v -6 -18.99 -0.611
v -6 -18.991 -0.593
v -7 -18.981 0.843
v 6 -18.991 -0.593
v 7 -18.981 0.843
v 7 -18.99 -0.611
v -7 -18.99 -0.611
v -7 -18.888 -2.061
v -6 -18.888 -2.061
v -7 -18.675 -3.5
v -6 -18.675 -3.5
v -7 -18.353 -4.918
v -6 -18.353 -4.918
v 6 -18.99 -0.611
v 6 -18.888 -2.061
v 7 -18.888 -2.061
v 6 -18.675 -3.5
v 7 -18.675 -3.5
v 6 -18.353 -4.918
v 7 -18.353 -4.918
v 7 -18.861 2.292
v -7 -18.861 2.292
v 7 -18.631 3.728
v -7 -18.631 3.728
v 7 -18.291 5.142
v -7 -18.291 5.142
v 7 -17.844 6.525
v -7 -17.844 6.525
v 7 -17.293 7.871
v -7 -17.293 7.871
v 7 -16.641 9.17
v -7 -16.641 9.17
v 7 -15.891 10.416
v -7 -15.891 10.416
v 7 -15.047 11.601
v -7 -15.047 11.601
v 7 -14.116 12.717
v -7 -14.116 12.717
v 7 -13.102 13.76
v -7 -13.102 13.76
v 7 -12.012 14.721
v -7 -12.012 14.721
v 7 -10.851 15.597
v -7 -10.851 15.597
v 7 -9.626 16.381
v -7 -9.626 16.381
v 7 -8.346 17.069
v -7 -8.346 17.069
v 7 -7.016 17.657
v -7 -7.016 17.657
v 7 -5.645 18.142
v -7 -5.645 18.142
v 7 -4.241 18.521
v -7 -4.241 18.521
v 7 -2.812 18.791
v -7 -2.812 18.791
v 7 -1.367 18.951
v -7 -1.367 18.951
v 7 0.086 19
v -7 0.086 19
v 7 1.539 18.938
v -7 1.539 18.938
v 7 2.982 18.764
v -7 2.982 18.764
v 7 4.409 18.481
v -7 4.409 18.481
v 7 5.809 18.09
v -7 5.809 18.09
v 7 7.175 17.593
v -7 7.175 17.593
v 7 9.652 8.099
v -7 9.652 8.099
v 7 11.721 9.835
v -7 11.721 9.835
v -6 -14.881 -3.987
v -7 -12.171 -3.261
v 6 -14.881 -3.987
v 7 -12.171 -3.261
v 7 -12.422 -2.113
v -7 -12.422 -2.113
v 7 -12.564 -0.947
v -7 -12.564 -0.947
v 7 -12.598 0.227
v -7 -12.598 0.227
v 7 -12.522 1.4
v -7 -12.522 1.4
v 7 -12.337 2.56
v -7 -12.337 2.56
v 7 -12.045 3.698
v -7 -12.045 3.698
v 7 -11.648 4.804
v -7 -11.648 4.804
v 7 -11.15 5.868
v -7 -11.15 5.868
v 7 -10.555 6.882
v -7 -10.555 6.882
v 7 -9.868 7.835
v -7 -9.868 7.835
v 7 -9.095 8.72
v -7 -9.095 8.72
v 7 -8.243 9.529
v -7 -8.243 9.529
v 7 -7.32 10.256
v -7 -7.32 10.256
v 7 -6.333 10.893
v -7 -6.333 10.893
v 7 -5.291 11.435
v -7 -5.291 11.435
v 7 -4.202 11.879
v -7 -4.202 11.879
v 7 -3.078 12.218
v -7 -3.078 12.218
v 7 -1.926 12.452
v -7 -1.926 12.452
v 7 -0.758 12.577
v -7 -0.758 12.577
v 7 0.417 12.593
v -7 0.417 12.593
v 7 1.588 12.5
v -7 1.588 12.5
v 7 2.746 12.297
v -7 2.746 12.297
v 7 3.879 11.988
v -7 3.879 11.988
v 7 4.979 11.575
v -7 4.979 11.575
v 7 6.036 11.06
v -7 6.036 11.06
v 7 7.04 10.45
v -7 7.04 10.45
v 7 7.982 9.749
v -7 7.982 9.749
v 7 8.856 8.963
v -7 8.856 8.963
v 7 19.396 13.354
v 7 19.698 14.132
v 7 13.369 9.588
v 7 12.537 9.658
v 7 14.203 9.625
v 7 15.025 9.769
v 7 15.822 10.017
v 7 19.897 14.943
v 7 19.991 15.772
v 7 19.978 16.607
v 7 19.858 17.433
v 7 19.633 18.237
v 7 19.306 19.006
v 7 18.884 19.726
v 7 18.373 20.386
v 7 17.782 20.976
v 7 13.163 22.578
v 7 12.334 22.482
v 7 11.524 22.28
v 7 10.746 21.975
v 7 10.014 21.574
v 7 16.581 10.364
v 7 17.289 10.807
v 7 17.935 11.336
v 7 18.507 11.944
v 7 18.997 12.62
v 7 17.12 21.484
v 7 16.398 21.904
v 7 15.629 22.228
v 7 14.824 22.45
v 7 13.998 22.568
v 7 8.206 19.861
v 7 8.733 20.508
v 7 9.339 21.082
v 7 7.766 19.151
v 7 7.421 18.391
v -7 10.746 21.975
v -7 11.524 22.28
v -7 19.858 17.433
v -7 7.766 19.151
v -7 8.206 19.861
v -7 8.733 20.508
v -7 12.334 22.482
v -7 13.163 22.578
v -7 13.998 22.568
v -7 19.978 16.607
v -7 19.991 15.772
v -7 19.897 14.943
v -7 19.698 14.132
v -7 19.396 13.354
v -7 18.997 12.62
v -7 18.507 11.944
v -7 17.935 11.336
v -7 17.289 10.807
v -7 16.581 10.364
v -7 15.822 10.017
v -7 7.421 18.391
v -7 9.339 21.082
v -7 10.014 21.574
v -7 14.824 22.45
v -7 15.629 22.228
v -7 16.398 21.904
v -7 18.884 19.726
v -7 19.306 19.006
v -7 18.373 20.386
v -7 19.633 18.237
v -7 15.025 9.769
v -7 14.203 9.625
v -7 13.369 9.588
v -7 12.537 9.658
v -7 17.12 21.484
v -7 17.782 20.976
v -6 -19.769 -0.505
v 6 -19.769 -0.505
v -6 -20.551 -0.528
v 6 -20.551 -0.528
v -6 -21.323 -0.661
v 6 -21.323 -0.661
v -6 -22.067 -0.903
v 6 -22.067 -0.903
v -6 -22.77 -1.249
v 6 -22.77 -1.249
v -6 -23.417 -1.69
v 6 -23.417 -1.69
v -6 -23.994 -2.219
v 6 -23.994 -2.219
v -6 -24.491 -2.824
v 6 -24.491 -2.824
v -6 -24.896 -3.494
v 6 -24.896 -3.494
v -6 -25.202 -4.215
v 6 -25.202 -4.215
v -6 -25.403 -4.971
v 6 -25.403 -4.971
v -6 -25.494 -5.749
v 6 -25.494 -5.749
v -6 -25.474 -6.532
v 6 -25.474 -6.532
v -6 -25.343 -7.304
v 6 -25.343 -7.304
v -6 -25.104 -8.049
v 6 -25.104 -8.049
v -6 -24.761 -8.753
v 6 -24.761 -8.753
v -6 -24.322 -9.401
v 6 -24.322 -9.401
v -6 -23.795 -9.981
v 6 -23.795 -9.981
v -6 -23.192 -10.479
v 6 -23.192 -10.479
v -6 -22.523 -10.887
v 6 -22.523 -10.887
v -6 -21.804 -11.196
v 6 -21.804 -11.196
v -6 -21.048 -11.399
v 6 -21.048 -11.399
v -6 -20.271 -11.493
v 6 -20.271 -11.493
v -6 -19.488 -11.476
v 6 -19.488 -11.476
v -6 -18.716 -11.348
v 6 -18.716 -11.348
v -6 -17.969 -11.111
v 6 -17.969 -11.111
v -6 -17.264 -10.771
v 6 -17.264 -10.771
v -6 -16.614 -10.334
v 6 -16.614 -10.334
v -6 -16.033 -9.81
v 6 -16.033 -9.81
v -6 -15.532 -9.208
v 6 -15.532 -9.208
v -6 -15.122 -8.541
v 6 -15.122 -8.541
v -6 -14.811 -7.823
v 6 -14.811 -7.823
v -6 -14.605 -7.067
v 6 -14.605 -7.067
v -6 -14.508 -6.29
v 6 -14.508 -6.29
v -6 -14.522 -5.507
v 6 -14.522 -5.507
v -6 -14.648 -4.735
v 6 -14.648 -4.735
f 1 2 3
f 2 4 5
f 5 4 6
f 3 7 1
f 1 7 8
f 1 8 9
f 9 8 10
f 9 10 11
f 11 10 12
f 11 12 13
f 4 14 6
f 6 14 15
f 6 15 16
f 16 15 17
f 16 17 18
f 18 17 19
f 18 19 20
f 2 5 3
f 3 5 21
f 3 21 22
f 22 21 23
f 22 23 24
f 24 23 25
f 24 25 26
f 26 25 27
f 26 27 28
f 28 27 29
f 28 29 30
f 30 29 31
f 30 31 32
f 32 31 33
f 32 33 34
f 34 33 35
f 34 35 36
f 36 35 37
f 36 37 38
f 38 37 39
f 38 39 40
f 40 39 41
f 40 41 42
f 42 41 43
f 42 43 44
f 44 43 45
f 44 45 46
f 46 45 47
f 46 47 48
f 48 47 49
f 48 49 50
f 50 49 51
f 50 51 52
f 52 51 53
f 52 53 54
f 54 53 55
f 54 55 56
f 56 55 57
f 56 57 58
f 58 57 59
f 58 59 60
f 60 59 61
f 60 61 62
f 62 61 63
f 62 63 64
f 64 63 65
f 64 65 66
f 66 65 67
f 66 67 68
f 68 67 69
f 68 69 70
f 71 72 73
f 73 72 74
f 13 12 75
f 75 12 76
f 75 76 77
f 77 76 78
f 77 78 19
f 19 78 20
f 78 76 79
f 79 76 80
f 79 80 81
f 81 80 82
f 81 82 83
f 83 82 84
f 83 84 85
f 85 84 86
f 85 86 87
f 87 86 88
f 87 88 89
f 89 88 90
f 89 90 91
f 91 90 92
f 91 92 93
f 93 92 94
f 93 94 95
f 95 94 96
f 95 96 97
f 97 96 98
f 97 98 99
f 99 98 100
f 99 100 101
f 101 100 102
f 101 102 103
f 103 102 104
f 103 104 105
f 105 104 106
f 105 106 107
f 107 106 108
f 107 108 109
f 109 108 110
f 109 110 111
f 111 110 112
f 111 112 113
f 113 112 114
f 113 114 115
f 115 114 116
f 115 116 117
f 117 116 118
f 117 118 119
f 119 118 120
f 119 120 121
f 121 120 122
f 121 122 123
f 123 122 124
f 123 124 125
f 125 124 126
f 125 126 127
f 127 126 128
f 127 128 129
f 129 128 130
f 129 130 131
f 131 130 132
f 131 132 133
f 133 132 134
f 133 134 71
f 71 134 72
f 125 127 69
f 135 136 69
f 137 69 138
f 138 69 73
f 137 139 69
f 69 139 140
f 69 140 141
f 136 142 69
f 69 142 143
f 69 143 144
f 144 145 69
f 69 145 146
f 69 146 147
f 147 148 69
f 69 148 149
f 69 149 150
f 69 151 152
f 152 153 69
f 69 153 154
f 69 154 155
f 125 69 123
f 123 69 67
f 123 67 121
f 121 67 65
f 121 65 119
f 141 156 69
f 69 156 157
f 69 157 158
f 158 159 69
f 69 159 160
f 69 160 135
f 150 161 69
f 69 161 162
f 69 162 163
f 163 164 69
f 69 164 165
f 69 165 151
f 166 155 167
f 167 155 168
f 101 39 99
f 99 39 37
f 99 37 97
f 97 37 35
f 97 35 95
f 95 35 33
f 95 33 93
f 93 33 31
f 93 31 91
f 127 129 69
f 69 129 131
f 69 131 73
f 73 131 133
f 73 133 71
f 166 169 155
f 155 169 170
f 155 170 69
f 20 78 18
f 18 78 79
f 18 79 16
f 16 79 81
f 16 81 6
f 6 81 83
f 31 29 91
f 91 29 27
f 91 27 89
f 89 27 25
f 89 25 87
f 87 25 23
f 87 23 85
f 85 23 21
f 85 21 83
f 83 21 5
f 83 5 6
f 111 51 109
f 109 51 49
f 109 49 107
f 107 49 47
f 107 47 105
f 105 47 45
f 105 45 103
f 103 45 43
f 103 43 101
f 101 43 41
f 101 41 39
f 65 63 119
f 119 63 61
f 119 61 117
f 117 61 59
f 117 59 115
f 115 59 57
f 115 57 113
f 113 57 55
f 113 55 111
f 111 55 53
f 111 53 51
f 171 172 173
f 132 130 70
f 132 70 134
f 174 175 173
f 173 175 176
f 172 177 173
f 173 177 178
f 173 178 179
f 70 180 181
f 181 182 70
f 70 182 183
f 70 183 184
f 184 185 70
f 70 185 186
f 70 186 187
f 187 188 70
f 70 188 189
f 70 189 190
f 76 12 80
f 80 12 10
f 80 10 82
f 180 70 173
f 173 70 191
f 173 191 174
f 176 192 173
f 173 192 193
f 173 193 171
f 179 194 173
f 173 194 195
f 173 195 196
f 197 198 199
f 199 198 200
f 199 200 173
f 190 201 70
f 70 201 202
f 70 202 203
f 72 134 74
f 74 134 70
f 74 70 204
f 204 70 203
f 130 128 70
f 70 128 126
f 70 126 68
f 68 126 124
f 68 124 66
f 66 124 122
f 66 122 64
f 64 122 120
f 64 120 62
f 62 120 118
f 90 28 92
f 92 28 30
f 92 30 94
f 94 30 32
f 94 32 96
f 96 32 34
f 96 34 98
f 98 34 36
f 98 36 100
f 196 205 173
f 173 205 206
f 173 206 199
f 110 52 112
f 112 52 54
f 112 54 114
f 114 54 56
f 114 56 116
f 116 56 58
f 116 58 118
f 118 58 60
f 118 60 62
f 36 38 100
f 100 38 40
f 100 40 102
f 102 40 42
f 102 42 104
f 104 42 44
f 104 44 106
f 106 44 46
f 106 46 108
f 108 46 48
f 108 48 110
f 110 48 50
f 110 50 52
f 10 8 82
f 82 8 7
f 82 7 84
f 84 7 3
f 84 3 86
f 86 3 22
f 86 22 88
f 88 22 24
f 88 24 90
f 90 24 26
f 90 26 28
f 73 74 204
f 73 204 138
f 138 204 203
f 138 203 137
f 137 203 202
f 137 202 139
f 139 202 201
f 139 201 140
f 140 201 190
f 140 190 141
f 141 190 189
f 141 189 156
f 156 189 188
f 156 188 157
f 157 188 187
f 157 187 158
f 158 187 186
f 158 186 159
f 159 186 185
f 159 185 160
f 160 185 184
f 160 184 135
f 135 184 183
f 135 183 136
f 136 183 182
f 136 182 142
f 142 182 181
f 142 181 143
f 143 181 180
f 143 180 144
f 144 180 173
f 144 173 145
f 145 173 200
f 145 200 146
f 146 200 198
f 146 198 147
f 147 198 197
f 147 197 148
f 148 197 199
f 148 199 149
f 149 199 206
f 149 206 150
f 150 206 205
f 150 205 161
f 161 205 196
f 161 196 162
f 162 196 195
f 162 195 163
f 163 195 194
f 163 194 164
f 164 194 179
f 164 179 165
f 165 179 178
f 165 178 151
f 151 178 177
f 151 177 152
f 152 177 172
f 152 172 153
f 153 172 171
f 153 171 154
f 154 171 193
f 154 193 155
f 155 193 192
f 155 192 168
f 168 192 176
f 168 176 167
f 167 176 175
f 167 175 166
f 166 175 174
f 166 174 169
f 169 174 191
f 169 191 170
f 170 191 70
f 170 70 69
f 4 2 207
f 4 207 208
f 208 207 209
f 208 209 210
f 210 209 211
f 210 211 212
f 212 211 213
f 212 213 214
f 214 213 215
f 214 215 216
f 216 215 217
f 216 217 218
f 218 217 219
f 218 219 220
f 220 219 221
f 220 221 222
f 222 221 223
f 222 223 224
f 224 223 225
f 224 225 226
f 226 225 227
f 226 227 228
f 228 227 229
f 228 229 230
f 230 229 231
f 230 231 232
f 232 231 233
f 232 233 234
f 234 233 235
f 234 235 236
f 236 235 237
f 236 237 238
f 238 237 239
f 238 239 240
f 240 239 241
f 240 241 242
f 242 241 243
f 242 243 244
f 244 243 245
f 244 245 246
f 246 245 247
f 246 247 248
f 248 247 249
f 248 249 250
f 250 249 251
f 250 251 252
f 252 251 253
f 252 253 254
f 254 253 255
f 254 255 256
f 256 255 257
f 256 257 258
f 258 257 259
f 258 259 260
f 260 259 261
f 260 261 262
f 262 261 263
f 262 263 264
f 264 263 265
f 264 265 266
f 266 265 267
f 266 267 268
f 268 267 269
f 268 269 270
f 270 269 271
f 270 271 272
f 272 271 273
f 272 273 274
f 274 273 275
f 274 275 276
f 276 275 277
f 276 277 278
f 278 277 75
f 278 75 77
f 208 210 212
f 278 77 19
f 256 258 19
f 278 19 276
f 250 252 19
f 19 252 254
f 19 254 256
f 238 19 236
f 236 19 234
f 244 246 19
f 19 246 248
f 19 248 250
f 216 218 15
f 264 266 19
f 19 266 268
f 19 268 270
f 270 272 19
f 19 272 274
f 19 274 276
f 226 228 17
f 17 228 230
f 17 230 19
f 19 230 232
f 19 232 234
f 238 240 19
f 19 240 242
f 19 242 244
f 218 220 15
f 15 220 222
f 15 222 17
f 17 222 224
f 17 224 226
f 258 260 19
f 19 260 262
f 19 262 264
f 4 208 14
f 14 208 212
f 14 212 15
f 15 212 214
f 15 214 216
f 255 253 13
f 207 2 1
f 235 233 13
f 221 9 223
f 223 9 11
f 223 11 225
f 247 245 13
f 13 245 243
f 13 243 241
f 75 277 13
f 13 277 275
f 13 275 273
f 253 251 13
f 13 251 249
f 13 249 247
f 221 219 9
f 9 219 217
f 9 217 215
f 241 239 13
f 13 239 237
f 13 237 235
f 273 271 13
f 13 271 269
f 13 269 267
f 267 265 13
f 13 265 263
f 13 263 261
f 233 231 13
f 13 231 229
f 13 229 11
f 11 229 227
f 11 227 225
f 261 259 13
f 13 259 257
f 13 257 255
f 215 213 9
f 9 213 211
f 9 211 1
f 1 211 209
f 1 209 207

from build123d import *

# Parameters (mm, degrees)
GANCHO_TROCLEAR_DEPTH = 14
SKETCH2_R             = 6.5
OLECRANON_DEPTH       = 14
SKETCH3_R             = 5.5
CORONOIDES_DEPTH      = 12


with BuildPart() as part:
    # Sketch1 → Gancho_troclear (new body)
    with BuildSketch(Plane(origin=(-7, 0, 0), x_dir=(0, 0, -1), z_dir=(1, 0, 0))):
        with BuildLine():
            Line((4.917561857, -18.352590699), (3.261119968, -12.170665411))
            ThreePointArc((3.261119968, -12.170665411), (-11.176336498, -5.818032527), (-8.099123882, 9.652159983))
            Line((-8.099123882, 9.652159983), (-12.212964584, 14.554844419))
            ThreePointArc((-12.212964584, 14.554844419), (-16.85320583, -8.773223651), (4.917561857, -18.352590699))
        make_face()
    extrude(amount=GANCHO_TROCLEAR_DEPTH)

    # Sketch2 → Olecranon (add)
    with BuildSketch(Plane(origin=(-7, 0, 0), x_dir=(0, 0, -1), z_dir=(1, 0, 0))):
        with Locations((-16.086933305, 13.498539803)):
            Circle(SKETCH2_R)
    extrude(amount=OLECRANON_DEPTH)

    # Sketch3 → Coronoides (add)
    with BuildSketch(Plane(origin=(-6, 0, 0), x_dir=(0, 0, -1), z_dir=(1, 0, 0))):
        with Locations((6, -20)):
            Circle(SKETCH3_R)
    extrude(amount=CORONOIDES_DEPTH)


solid = part.part
